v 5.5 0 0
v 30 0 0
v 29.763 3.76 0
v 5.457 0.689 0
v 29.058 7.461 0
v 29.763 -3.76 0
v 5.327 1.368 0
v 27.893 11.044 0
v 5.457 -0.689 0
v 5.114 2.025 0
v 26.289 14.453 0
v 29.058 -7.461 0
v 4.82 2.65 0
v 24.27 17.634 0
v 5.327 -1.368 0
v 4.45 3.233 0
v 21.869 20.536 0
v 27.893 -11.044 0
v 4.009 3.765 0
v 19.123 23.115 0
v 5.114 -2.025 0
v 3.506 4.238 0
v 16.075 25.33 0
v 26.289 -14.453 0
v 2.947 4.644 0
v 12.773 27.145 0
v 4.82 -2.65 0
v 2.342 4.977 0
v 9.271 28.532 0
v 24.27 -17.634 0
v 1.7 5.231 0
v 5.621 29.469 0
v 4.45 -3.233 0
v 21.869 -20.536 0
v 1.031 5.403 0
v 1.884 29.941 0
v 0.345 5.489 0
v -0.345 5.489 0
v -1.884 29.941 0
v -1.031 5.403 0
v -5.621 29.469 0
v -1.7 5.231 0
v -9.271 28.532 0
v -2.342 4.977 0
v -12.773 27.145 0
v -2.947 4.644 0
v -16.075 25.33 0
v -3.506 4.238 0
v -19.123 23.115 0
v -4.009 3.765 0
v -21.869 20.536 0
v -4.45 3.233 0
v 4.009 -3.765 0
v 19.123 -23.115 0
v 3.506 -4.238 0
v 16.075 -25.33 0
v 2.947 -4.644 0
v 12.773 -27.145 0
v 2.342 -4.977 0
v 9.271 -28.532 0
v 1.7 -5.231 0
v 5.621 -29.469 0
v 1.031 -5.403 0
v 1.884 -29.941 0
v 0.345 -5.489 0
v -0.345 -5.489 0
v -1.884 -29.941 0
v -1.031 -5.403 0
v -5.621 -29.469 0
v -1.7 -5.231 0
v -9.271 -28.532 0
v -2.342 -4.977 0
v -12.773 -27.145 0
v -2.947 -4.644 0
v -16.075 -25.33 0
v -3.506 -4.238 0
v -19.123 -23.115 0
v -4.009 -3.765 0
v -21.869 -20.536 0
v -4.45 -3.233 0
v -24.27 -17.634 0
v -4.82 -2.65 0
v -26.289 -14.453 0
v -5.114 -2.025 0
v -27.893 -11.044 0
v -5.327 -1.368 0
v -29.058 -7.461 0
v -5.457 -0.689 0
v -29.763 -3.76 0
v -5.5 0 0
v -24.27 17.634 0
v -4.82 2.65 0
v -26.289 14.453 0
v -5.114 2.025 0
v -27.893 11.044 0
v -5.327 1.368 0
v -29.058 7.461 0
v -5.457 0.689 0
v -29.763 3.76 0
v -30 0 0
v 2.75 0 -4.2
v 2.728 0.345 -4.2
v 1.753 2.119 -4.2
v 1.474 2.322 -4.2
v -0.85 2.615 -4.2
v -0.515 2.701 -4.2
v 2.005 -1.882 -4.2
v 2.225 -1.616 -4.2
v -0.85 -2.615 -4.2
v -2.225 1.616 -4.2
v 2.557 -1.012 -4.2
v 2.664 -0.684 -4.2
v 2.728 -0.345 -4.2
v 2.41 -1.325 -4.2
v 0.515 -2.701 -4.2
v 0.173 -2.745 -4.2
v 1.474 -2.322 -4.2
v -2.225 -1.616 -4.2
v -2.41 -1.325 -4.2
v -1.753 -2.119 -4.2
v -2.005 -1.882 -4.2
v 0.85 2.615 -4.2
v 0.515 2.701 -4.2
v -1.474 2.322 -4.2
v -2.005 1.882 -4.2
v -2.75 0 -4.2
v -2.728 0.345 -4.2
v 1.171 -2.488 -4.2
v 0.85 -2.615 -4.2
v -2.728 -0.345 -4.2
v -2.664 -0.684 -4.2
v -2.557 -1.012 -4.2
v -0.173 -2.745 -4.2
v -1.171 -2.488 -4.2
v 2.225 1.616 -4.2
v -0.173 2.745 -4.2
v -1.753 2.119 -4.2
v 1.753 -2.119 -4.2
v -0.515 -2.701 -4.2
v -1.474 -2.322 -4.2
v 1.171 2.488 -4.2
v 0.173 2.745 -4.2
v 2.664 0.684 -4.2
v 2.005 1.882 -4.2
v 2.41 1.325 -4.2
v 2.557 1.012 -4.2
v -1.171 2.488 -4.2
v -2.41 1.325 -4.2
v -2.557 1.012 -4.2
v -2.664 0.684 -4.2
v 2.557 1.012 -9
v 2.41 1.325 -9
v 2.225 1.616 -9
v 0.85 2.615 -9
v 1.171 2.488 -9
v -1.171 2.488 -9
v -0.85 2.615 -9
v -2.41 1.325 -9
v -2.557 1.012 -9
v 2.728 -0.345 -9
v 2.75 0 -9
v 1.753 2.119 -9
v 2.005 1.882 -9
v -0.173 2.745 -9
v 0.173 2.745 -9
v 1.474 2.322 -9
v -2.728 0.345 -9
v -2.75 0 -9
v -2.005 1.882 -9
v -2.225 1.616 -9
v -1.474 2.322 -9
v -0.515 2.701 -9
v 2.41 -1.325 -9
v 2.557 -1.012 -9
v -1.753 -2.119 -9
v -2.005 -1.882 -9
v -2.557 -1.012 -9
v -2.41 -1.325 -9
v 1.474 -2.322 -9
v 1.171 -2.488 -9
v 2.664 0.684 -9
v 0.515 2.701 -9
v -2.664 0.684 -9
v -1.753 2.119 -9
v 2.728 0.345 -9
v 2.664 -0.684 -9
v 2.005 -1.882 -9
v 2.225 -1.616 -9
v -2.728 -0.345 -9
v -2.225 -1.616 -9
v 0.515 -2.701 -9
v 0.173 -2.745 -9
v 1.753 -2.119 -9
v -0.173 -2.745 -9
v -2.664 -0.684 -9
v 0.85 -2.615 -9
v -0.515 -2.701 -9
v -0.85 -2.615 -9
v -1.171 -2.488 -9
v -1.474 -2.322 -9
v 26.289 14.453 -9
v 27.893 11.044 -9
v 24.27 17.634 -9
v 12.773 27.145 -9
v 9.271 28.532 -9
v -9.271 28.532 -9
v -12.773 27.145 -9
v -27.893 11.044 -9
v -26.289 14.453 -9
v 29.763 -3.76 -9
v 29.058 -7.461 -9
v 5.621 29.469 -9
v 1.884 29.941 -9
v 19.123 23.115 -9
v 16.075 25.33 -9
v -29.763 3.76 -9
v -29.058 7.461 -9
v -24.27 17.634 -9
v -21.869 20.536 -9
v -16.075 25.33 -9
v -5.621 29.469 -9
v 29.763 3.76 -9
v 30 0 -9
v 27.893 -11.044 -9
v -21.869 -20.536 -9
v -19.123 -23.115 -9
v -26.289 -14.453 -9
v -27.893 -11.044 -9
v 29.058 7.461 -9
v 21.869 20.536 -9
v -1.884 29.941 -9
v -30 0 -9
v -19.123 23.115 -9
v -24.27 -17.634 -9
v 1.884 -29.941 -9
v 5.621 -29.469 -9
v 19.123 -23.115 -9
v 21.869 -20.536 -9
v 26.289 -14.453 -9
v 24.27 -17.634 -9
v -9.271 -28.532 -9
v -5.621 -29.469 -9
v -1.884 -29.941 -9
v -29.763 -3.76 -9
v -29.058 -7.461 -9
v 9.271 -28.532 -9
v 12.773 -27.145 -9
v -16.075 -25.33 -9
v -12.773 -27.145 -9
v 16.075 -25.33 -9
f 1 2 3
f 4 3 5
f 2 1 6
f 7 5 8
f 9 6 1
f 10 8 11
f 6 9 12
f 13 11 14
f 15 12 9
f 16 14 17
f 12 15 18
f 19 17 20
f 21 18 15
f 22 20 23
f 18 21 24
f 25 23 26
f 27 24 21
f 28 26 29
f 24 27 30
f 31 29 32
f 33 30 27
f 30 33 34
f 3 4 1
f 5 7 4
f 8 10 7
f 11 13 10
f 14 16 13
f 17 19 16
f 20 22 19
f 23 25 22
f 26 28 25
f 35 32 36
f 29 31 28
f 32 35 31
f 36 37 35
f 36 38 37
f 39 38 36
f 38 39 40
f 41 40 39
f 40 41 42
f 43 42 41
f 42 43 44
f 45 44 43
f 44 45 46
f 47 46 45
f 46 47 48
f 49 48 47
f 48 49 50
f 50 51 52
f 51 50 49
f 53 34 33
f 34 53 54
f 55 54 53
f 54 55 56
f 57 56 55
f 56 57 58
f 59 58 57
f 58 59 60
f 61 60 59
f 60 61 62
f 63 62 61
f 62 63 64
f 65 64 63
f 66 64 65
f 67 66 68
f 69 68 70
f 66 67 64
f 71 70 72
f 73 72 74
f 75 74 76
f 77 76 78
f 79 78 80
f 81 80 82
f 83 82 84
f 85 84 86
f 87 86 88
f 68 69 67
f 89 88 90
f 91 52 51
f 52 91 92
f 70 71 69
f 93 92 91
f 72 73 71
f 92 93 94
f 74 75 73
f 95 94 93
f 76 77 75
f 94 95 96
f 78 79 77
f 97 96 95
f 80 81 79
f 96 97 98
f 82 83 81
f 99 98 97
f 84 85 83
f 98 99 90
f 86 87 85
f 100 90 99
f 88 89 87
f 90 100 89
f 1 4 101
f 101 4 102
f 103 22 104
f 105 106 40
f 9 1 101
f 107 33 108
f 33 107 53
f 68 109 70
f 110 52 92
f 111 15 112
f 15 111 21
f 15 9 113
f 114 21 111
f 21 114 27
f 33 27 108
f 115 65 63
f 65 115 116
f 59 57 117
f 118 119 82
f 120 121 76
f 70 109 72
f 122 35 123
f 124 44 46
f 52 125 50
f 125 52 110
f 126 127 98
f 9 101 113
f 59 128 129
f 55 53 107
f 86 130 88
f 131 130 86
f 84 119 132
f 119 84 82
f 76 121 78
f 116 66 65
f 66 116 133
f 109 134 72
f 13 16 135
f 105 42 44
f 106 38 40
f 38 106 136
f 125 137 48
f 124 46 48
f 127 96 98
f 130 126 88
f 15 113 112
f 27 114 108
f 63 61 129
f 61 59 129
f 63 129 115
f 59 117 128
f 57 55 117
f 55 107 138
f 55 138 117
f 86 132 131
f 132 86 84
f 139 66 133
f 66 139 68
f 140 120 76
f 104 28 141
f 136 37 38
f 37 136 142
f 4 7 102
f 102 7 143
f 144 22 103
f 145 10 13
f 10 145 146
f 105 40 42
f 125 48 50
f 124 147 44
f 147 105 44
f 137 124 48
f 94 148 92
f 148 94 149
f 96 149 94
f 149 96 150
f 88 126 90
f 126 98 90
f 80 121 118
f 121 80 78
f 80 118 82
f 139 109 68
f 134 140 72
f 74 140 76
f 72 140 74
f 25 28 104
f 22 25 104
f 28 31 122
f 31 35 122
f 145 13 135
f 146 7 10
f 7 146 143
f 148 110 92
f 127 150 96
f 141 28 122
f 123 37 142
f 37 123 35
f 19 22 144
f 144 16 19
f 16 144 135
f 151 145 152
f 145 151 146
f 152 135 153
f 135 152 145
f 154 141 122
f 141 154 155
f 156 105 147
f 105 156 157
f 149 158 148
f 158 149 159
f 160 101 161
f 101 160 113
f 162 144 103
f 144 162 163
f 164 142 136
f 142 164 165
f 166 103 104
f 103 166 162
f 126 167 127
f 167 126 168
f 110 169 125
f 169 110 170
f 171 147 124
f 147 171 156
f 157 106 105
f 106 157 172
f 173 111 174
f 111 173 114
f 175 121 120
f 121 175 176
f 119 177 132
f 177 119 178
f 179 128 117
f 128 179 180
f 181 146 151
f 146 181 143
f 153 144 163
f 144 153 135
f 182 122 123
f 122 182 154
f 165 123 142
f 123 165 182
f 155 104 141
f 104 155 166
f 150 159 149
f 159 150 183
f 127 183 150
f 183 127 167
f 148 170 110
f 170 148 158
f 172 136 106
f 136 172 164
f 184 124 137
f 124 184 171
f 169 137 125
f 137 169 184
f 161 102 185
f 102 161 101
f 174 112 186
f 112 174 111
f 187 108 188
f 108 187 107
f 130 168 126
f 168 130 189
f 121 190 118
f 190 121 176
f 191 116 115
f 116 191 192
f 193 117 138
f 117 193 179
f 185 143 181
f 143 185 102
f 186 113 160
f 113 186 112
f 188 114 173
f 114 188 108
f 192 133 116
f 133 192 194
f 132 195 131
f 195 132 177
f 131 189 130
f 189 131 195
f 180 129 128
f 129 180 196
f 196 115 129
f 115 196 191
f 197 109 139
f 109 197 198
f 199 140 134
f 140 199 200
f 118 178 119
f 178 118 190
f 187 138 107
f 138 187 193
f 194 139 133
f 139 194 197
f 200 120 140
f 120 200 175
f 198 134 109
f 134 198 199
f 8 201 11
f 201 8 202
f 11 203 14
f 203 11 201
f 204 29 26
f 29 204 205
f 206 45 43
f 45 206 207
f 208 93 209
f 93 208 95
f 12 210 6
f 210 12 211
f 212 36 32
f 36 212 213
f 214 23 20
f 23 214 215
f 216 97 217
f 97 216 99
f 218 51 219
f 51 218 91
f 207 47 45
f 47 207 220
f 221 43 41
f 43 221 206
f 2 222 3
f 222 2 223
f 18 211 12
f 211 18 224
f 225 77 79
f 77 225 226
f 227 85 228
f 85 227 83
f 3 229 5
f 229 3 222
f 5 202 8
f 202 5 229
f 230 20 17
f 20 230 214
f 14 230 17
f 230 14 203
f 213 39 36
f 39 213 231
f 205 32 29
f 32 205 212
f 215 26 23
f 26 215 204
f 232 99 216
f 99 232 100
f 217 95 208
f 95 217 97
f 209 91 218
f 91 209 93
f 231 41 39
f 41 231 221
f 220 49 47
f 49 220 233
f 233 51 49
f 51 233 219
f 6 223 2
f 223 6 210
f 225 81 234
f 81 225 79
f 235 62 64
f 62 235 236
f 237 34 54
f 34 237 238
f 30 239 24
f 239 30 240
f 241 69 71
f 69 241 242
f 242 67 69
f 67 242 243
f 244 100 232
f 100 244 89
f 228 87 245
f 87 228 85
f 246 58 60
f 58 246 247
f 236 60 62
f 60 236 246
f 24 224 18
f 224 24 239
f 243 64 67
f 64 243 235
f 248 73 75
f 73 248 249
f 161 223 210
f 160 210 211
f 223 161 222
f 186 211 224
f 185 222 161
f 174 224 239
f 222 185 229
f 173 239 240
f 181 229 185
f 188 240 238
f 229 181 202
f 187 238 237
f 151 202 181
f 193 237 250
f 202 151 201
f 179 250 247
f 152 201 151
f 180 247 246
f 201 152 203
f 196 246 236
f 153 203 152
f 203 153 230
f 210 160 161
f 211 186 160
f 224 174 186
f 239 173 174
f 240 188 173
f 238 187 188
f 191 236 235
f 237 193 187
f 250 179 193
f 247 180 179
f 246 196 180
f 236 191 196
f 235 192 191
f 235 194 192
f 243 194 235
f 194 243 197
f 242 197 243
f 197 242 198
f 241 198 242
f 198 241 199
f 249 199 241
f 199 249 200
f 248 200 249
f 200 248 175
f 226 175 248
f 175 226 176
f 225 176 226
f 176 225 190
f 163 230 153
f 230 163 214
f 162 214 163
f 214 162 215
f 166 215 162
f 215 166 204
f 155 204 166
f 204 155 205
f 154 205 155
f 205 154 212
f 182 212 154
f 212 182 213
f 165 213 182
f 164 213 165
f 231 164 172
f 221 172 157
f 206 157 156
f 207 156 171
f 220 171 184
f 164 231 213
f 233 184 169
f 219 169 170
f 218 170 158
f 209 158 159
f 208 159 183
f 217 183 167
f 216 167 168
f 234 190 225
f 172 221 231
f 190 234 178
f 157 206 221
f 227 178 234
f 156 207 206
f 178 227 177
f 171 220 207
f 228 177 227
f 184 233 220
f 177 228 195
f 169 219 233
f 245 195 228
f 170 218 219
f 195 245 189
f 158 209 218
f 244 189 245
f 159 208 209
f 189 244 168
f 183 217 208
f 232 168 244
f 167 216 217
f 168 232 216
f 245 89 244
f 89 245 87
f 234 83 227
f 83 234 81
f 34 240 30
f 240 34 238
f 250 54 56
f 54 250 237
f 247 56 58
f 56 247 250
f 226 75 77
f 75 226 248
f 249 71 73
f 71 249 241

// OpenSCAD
$fn = 50;


difference() {
	union() {
		translate(v = [0, 0, -9.0000000000]) {
			cylinder(h = 9, r = 30.0000000000);
		}
	}
	union() {
		translate(v = [0, 0, 0]) {
			rotate(a = [0, 0, 0]) {
				difference() {
					union() {
						translate(v = [0, 0, -12.0000000000]) {
							cylinder(h = 12, r = 2.2500000000);
						}
						translate(v = [0, 0, -4.2000000000]) {
							cylinder(h = 4.2000000000, r1 = 2.7500000000, r2 = 5.5000000000);
						}
						translate(v = [0, 0, -12.0000000000]) {
							cylinder(h = 12, r = 2.7500000000);
						}
						translate(v = [0, 0, -12.0000000000]) {
							cylinder(h = 12, r = 2.2500000000);
						}
					}
					union();
				}
			}
		}
	}
}
